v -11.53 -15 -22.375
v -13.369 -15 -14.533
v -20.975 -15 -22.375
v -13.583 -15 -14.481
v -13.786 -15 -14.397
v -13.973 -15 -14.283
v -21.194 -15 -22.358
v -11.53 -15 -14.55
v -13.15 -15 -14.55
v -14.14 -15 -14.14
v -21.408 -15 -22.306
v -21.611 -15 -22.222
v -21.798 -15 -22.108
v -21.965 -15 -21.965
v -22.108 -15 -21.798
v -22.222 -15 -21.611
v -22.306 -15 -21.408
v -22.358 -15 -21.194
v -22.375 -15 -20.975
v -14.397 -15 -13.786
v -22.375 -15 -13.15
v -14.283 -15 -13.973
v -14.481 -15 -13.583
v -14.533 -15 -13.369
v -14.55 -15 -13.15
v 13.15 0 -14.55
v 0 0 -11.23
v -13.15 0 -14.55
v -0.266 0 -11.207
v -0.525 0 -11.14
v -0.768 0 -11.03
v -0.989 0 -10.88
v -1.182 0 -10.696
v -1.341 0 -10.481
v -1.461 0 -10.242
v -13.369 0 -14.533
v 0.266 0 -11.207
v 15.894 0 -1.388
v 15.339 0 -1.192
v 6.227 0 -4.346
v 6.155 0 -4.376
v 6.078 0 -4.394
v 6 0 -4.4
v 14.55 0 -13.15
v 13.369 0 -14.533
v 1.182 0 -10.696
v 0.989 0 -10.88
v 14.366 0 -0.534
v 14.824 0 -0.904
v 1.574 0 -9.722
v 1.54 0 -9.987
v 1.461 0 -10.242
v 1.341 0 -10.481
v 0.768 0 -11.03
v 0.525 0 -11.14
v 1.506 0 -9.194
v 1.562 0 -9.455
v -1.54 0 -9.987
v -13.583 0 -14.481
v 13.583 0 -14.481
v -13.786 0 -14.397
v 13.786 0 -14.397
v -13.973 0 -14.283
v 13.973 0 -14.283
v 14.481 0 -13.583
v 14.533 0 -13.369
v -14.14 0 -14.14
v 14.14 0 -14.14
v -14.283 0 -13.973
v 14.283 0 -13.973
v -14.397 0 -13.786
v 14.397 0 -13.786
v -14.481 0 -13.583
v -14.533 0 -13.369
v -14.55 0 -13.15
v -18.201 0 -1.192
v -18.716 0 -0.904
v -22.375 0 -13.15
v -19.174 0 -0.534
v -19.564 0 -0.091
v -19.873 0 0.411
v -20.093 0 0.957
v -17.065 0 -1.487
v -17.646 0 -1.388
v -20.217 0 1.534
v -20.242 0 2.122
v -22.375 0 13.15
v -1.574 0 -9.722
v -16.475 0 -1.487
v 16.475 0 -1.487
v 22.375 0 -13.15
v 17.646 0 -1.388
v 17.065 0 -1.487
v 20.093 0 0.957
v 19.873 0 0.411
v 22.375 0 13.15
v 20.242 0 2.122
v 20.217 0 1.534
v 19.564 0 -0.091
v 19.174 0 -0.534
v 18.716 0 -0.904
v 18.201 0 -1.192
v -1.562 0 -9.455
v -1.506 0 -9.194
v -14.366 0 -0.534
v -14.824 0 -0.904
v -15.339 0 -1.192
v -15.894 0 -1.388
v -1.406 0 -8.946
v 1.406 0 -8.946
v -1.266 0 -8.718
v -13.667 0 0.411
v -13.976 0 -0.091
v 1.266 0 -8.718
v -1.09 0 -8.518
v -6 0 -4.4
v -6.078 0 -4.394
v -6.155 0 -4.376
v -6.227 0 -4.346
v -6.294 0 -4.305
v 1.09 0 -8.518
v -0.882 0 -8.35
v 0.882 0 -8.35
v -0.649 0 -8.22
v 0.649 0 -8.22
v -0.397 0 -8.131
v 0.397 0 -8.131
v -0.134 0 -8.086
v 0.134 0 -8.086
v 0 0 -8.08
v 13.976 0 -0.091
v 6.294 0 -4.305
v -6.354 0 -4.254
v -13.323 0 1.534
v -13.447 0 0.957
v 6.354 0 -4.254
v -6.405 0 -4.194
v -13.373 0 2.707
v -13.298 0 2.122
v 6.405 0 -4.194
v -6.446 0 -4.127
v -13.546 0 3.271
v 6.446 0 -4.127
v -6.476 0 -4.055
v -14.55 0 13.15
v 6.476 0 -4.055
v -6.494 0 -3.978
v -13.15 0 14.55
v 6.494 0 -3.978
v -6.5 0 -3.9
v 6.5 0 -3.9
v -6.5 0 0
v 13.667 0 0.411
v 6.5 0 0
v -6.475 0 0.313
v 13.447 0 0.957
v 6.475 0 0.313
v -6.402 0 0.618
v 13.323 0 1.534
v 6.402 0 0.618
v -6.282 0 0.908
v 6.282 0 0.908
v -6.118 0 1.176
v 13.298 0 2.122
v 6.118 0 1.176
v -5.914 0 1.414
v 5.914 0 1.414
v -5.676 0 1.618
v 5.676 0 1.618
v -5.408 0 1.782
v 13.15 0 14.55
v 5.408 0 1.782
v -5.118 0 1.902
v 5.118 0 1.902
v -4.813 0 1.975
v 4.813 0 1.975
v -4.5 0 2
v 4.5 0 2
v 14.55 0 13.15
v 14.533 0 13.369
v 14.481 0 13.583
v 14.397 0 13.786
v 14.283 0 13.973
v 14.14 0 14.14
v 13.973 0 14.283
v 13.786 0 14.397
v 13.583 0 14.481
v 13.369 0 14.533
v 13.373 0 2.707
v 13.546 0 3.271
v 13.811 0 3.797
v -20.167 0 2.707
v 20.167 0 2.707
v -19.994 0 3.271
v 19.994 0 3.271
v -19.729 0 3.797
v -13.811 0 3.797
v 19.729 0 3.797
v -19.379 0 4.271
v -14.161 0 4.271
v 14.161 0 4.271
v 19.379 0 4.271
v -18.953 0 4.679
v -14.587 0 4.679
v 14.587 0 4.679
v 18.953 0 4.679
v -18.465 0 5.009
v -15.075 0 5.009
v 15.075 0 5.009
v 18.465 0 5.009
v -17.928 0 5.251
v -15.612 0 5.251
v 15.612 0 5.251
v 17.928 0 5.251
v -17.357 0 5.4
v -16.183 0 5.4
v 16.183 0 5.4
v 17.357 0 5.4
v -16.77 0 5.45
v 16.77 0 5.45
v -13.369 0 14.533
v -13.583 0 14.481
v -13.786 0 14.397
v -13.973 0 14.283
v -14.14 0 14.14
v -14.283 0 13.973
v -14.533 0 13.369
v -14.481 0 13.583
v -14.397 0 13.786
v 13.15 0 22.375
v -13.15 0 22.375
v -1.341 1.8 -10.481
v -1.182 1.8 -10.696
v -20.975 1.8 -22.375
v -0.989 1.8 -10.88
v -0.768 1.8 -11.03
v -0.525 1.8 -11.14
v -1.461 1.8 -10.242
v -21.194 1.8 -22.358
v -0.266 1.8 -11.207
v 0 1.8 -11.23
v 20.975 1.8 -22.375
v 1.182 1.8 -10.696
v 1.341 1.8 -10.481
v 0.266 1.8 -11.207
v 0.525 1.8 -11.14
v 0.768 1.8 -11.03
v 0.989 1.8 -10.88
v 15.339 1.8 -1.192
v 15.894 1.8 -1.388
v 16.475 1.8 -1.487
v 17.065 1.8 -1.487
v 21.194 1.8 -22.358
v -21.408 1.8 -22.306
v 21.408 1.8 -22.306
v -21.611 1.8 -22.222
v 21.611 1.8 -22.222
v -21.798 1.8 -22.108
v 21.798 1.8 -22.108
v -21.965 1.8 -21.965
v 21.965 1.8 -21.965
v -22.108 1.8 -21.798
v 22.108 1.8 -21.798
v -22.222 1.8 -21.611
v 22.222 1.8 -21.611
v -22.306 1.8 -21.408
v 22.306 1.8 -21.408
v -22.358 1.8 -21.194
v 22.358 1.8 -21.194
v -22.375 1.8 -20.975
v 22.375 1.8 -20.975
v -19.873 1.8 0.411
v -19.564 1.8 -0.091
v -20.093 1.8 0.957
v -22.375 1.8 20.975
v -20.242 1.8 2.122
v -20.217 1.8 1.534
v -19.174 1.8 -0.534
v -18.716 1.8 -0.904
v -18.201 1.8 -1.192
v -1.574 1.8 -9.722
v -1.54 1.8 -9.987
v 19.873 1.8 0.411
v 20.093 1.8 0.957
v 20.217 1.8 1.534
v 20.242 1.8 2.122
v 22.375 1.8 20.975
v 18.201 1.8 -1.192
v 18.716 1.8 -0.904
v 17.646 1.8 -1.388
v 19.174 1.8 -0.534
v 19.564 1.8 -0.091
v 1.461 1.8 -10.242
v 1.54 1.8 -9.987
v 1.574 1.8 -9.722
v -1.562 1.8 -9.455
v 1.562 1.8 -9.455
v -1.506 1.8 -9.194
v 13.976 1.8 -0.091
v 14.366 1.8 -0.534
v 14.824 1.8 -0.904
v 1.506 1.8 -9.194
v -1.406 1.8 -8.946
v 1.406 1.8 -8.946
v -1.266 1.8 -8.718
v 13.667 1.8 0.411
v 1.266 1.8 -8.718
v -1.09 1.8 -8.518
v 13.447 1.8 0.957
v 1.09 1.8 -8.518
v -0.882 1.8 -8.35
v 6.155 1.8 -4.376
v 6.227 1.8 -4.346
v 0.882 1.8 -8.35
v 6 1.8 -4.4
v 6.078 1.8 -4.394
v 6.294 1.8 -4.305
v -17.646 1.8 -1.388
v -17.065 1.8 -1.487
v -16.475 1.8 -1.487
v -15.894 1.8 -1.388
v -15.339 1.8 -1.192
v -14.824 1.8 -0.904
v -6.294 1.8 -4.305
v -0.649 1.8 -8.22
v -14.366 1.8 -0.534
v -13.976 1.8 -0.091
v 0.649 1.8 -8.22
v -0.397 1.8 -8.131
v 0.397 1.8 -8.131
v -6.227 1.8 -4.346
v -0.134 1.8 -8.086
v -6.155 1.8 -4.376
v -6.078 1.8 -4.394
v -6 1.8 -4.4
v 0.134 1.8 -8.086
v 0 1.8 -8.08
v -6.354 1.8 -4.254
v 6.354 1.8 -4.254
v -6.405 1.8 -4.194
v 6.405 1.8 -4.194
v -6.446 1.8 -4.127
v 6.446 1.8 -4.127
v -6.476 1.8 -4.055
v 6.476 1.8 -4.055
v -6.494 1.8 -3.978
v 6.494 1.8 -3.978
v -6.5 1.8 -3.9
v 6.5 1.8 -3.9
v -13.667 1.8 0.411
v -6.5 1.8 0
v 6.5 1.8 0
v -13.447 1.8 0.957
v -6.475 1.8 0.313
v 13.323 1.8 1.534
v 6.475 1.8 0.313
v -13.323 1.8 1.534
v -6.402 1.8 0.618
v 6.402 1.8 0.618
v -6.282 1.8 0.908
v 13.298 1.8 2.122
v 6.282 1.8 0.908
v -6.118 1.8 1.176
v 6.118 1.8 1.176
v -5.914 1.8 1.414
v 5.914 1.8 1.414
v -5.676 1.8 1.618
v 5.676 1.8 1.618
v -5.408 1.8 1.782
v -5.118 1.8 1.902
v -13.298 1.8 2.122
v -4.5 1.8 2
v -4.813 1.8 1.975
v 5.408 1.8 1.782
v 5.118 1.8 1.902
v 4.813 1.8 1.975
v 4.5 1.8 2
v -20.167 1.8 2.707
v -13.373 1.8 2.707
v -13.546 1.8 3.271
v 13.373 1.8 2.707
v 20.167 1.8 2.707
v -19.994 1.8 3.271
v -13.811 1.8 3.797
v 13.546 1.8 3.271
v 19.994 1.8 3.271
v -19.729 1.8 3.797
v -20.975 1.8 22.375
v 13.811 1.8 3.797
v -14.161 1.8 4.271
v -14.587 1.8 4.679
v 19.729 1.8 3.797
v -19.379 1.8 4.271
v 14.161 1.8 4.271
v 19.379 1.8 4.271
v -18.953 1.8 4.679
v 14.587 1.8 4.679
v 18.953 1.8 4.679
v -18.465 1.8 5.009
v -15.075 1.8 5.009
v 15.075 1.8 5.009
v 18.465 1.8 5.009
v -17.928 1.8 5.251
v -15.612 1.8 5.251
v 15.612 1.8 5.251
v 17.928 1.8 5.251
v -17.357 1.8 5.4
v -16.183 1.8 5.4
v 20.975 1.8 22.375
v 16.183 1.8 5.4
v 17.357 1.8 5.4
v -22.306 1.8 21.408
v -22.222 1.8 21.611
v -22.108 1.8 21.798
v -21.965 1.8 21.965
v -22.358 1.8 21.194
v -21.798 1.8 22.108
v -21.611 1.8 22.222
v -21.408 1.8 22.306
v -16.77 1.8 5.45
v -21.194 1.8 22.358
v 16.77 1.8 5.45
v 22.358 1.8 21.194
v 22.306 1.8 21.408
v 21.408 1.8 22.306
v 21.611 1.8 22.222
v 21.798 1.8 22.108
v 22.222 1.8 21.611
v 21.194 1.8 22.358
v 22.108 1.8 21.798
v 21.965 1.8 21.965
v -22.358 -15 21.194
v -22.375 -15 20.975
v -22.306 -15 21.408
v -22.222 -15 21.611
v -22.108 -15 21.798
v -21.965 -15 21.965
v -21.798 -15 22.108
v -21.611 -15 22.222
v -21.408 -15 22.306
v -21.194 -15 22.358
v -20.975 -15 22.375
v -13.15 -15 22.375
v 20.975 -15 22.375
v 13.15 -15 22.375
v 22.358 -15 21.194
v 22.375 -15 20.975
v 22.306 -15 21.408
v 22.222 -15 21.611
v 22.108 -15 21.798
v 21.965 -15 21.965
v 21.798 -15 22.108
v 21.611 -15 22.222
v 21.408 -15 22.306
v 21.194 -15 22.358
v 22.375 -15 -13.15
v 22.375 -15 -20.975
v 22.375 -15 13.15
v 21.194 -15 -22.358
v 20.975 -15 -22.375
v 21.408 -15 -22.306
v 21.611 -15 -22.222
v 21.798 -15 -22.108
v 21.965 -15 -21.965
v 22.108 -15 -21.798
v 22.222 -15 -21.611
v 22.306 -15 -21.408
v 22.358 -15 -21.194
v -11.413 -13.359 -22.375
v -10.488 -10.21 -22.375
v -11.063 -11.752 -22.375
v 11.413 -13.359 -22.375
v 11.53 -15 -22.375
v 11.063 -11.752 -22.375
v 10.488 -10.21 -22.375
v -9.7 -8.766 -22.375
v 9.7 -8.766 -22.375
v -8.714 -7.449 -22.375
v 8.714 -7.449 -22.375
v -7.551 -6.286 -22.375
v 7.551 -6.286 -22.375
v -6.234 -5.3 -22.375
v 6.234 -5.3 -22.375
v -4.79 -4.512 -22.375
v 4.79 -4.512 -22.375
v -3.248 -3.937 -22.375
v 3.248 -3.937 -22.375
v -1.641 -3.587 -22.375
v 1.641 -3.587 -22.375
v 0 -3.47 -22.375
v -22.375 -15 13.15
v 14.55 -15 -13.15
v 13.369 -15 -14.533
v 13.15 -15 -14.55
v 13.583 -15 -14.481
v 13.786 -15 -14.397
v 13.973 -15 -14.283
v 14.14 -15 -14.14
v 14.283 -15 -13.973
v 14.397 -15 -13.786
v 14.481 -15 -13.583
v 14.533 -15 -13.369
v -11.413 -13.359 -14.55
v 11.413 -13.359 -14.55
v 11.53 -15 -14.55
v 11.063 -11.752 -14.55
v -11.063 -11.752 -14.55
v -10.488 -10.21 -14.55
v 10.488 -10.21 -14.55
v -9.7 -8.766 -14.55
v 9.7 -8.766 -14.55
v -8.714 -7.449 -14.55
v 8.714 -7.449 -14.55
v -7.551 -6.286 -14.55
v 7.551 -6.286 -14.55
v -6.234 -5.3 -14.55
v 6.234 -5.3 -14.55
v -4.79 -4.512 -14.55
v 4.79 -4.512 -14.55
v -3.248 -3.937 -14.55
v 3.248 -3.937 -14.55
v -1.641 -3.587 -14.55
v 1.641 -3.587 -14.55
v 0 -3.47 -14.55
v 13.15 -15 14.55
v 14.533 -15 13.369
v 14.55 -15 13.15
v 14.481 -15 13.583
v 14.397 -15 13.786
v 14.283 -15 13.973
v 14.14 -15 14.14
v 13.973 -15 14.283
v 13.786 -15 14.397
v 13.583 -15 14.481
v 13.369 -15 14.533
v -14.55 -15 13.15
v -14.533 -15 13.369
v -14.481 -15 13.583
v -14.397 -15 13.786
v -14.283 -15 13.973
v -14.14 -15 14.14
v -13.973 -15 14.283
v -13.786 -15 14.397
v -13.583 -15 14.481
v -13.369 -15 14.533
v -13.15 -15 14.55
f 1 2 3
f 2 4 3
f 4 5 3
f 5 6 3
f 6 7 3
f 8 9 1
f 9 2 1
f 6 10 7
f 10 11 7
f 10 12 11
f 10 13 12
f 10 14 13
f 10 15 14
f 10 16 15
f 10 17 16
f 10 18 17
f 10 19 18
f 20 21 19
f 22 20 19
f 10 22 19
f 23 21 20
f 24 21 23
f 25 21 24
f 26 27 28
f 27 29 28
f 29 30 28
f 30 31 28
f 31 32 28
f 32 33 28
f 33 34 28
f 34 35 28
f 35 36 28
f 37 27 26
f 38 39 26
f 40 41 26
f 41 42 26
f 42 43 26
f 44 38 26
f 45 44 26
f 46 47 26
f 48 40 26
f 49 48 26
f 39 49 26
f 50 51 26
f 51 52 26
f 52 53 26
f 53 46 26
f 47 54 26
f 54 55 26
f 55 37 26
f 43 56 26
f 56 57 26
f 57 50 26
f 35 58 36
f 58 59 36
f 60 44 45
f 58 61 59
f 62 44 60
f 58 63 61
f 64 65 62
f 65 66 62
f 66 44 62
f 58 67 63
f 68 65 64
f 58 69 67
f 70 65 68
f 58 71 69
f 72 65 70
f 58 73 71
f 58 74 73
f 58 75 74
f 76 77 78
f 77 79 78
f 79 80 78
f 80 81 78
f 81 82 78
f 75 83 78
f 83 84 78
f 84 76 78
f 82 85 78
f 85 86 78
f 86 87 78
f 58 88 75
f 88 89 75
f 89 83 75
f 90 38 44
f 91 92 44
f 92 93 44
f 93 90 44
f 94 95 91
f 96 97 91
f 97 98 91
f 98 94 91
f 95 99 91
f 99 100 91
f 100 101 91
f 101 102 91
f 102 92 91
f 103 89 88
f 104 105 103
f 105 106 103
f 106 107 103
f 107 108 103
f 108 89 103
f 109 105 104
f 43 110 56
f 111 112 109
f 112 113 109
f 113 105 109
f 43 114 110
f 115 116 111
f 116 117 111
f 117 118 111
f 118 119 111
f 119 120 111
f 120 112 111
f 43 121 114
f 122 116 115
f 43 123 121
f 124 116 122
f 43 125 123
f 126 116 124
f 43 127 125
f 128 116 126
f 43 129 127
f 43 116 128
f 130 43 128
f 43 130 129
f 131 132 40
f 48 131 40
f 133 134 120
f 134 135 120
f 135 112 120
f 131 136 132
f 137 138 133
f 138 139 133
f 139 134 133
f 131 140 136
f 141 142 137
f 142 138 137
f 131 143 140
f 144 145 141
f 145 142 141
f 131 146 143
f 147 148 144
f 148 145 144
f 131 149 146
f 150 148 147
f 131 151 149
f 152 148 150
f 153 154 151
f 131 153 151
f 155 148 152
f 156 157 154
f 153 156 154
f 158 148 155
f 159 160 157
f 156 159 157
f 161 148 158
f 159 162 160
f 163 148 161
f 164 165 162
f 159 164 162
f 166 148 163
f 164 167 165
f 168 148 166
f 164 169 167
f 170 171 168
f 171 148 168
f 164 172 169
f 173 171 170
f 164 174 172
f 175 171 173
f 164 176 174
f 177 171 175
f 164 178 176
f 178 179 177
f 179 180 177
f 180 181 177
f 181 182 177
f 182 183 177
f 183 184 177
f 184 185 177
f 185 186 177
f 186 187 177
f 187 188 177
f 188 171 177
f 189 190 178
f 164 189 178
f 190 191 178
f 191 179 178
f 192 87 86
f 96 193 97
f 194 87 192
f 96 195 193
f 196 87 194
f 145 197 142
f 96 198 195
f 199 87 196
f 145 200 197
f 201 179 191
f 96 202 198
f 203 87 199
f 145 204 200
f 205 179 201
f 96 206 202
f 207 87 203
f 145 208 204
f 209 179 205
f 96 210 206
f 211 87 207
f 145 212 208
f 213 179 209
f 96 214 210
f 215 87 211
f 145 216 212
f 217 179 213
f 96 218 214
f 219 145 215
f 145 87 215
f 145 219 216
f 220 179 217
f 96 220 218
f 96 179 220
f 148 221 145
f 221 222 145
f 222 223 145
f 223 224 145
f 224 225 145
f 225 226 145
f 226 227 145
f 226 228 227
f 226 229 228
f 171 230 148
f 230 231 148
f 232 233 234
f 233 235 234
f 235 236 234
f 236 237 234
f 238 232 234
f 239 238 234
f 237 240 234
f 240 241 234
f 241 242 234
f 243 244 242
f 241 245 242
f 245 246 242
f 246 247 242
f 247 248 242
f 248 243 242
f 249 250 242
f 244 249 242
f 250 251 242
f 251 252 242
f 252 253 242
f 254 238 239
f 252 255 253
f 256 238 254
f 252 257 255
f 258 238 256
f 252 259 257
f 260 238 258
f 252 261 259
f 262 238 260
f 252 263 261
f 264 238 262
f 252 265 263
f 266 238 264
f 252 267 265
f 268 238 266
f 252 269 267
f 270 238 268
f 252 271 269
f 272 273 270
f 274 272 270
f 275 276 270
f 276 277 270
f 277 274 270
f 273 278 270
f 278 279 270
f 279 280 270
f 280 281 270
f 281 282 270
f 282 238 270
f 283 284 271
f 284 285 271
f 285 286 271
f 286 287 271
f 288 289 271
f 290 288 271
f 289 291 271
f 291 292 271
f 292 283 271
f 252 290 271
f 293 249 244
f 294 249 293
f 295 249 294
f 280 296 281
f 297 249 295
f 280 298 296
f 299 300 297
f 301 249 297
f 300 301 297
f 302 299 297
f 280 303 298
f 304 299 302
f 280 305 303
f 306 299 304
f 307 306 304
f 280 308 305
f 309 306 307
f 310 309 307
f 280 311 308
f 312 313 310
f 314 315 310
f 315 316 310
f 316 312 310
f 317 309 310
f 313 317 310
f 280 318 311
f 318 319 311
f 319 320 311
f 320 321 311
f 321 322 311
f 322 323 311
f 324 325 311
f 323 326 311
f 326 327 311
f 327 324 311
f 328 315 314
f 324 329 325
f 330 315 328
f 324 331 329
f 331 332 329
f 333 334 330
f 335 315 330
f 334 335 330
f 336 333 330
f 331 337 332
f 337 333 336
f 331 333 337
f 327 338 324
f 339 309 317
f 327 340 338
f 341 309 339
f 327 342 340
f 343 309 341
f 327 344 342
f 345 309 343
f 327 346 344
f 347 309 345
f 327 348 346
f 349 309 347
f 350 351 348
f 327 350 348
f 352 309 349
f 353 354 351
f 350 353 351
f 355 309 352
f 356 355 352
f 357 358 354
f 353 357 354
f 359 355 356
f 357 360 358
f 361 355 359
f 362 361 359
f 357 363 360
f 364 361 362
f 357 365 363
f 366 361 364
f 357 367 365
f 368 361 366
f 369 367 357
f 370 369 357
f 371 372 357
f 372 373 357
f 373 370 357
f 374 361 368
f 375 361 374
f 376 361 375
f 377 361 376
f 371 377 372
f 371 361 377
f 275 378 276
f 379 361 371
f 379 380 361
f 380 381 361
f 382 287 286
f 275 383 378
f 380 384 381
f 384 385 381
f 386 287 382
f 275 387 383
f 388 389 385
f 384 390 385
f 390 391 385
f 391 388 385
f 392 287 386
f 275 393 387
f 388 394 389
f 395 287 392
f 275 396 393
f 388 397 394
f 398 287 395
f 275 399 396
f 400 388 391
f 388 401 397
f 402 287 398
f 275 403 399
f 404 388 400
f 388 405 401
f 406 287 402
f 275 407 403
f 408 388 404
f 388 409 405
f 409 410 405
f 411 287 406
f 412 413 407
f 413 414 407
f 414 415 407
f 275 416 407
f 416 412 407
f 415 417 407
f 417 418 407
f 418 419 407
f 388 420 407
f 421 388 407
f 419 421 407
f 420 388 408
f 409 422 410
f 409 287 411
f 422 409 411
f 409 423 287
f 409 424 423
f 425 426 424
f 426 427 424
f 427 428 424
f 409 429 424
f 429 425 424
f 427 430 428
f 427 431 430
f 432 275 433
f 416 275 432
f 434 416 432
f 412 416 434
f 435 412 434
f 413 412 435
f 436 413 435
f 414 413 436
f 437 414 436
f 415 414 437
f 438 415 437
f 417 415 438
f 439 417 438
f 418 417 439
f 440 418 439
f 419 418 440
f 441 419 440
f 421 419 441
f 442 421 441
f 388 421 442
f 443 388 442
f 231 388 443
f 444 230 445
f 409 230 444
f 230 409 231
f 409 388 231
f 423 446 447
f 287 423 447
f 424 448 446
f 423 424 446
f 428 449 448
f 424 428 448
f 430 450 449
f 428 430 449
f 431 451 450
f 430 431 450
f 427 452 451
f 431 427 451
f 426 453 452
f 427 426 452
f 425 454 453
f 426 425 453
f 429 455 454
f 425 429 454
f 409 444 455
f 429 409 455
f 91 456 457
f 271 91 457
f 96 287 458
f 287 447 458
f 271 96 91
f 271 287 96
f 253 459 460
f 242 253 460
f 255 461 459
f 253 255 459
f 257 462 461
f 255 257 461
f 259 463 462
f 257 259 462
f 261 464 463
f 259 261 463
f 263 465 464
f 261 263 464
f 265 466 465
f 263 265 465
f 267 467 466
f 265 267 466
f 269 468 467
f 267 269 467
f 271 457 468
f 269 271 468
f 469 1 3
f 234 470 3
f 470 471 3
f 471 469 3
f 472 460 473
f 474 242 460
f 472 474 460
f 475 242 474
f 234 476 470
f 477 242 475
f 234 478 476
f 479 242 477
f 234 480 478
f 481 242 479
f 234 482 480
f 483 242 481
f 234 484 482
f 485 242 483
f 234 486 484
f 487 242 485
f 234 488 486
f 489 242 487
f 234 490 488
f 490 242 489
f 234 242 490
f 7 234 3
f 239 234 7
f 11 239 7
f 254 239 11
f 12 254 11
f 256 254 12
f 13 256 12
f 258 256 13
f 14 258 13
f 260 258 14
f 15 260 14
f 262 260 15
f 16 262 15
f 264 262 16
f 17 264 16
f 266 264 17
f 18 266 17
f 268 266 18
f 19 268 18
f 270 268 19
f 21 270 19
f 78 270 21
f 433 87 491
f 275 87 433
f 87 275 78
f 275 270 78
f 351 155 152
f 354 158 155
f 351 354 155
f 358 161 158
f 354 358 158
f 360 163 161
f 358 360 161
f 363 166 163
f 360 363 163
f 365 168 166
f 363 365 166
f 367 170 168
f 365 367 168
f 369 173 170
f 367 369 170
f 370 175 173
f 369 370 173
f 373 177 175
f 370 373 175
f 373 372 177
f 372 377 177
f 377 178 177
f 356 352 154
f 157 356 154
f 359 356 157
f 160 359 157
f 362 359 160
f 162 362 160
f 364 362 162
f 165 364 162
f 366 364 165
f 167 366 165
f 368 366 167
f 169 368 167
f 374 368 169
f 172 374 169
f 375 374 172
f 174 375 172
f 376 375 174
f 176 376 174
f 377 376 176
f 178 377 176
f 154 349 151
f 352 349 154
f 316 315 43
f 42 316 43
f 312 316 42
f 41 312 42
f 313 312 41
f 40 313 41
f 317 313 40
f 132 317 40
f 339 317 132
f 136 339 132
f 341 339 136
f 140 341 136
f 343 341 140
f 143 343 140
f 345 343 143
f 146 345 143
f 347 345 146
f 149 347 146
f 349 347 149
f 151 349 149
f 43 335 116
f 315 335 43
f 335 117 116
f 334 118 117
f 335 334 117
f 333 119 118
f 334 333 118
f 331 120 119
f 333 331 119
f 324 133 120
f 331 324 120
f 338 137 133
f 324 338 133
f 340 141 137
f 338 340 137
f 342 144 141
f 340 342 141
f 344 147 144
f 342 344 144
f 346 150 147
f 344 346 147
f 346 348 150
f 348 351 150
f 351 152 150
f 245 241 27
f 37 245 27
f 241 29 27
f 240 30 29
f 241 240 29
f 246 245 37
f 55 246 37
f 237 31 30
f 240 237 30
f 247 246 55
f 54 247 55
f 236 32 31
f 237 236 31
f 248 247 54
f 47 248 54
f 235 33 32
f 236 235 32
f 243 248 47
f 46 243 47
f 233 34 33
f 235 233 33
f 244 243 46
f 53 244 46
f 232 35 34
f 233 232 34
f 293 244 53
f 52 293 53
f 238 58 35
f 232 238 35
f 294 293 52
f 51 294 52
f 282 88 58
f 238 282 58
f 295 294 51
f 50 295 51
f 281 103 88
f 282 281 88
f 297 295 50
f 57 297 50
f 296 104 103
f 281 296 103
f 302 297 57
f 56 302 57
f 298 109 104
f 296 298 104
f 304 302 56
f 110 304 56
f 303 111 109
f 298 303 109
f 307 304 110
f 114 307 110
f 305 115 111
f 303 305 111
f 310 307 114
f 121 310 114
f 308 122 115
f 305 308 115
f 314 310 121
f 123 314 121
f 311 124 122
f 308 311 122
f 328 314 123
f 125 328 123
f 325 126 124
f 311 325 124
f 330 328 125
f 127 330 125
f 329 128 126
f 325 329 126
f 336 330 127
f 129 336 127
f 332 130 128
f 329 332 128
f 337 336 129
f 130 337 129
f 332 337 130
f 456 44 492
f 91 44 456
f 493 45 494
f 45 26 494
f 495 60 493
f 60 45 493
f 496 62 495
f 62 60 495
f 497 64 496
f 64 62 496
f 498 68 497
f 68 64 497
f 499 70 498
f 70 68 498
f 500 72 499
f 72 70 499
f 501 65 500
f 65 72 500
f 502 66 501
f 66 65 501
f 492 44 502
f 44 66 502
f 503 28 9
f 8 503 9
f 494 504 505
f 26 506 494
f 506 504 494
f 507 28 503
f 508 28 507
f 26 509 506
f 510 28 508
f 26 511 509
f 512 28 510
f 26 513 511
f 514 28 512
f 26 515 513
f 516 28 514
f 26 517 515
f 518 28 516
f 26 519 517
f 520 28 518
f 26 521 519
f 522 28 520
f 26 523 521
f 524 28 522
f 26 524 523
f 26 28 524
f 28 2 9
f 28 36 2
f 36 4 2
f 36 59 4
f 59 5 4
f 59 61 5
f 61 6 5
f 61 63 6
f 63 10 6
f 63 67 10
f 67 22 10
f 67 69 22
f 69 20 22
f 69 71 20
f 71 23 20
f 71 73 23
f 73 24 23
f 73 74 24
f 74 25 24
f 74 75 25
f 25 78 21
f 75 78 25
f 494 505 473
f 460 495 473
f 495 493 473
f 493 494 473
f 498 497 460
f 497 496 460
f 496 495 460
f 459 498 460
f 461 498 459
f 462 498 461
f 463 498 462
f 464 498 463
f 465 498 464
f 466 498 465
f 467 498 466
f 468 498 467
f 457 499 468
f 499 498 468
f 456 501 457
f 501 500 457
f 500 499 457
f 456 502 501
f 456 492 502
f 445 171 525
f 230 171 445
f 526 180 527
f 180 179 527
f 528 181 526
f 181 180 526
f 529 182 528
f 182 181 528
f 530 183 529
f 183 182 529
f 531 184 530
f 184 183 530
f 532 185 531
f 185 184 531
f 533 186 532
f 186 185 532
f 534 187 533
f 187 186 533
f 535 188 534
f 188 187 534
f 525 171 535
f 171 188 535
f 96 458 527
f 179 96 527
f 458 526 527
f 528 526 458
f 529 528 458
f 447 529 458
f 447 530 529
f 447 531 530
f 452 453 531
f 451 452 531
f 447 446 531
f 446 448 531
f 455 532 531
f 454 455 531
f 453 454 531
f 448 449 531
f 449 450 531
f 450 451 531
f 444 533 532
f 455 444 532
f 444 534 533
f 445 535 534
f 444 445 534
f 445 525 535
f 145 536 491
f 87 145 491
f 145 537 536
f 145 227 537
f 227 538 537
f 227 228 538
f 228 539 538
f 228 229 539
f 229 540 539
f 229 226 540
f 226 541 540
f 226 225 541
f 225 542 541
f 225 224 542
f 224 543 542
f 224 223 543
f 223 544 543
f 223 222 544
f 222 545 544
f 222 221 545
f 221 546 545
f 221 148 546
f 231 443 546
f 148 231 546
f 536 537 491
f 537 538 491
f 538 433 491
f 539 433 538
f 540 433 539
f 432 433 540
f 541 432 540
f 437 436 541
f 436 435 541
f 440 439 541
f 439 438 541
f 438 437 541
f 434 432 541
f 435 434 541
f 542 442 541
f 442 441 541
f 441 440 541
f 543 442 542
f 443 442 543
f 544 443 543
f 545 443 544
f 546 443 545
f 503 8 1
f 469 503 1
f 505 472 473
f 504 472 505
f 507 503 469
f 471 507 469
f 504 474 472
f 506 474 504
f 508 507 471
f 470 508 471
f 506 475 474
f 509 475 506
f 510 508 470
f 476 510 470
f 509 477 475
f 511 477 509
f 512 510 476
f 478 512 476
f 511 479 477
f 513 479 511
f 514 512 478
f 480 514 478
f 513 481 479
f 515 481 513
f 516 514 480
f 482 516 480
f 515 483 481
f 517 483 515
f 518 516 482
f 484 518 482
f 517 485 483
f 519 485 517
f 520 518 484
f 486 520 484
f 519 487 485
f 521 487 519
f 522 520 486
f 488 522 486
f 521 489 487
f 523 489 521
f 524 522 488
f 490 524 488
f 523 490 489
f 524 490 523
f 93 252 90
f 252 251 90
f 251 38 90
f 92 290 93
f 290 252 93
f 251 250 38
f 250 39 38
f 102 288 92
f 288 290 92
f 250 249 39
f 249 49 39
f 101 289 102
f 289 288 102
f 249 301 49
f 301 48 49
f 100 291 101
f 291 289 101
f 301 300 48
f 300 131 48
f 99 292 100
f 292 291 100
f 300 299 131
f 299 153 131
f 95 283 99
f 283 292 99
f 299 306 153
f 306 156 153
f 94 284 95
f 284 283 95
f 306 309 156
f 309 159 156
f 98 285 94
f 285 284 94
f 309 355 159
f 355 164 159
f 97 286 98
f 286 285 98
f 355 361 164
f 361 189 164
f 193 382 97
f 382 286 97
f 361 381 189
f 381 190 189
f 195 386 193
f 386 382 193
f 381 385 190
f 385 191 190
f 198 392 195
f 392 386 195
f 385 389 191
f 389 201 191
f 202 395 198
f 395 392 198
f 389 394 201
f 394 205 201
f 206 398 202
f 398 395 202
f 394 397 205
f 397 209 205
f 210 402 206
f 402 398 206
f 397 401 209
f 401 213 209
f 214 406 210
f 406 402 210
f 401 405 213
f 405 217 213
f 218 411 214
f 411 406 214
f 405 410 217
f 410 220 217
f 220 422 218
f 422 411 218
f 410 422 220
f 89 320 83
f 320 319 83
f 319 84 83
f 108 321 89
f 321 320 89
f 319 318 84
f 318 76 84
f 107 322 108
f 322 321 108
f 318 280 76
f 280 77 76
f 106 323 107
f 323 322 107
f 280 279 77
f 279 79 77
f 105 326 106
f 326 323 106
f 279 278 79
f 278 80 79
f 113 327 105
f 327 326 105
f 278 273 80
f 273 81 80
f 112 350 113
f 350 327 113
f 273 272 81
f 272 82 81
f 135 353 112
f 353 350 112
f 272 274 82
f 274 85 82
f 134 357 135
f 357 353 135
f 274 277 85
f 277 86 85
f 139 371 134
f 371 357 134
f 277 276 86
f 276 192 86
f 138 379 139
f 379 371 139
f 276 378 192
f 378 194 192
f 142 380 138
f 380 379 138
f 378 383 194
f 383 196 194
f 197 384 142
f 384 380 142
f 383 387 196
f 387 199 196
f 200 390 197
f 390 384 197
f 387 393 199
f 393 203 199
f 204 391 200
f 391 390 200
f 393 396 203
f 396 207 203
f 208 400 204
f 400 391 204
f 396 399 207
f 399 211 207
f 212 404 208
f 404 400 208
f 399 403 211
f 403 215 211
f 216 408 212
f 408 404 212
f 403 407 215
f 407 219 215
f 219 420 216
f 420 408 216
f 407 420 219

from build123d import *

# Parameters (mm, degrees)
SKETCH2_R           = 1.575
BOSS_EXTRUDE3_DEPTH = 1.8
BOSS_EXTRUDE4_START = 15
BOSS_EXTRUDE4_DEPTH = 15
CUT_EXTRUDE1_REACH  = 54.232
SKETCH4_R           = 11.530245675
SKETCH5_R           = 3.475
CUT_EXTRUDE2_DEPTH  = 36.826264807


with BuildPart() as part:
    # Sketch2 → Boss-Extrude3 (new body)
    with BuildSketch(Plane(origin=(0, 0, 0), x_dir=(1, 0, 0), z_dir=(0, 1, 0))):
        with BuildLine():
            Line((-20.975, -22.375), (20.975, -22.375))
            ThreePointArc((20.975, -22.375), (21.964949494, -21.964949494), (22.375, -20.975))
            Line((22.375, -20.975), (22.375, 20.975))
            ThreePointArc((22.375, 20.975), (21.964949494, 21.964949494), (20.975, 22.375))
            Line((20.975, 22.375), (-20.975, 22.375))
            ThreePointArc((-20.975, 22.375), (-21.964949494, 21.964949494), (-22.375, 20.975))
            Line((-22.375, 20.975), (-22.375, -20.975))
            ThreePointArc((-22.375, -20.975), (-21.964949494, -21.964949494), (-20.975, -22.375))
        make_face()
        with Locations(Location((0, 9.655, 0), (0, 0, 270))):
            Circle(SKETCH2_R, mode=Mode.SUBTRACT)
        with BuildLine():
            Line((-4.5, -2), (4.5, -2))
            ThreePointArc((4.5, -2), (5.914213562, -1.414213562), (6.5, 0))
            Line((6.5, 0), (6.5, 3.9))
            ThreePointArc((6.5, 3.9), (6.353553391, 4.253553391), (6, 4.4))
            Line((6, 4.4), (-6, 4.4))
            ThreePointArc((-6, 4.4), (-6.353553391, 4.253553391), (-6.5, 3.9))
            Line((-6.5, 3.9), (-6.5, 0))
            ThreePointArc((-6.5, 0), (-5.914213562, -1.414213562), (-4.5, -2))
        make_face(mode=Mode.SUBTRACT)
    extrude(amount=BOSS_EXTRUDE3_DEPTH)

    # Sketch3 → Boss-Extrude4 (add)
    with BuildSketch(Plane.XZ.offset(BOSS_EXTRUDE4_START)):
        with BuildLine():
            Line((-20.975, -22.375), (20.975, -22.375))
            ThreePointArc((20.975, -22.375), (21.964949494, -21.964949494), (22.375, -20.975))
            Line((22.375, -20.975), (22.375, -13.15))
            Line((22.375, -13.15), (14.55, -13.15))
            ThreePointArc((14.55, -13.15), (14.139949494, -14.139949494), (13.15, -14.55))
            Line((13.15, -14.55), (-13.15, -14.55))
            ThreePointArc((-13.15, -14.55), (-14.139949494, -14.139949494), (-14.55, -13.15))
            Line((-14.55, -13.15), (-22.375, -13.15))
            Line((-22.375, -13.15), (-22.375, -20.975))
            ThreePointArc((-22.375, -20.975), (-21.964949494, -21.964949494), (-20.975, -22.375))
        make_face()
        with BuildLine():
            Line((-20.975, 22.375), (-13.15, 22.375))
            Line((-13.15, 22.375), (-13.15, 14.55))
            ThreePointArc((-13.15, 14.55), (-14.139949494, 14.139949494), (-14.55, 13.15))
            Line((-14.55, 13.15), (-22.375, 13.15))
            Line((-22.375, 13.15), (-22.375, 20.975))
            ThreePointArc((-22.375, 20.975), (-21.964949494, 21.964949494), (-20.975, 22.375))
        make_face()
        with BuildLine():
            Line((14.55, 13.15), (22.375, 13.15))
            Line((22.375, 13.15), (22.375, 20.975))
            ThreePointArc((22.375, 20.975), (21.964949494, 21.964949494), (20.975, 22.375))
            Line((20.975, 22.375), (13.15, 22.375))
            Line((13.15, 22.375), (13.15, 14.55))
            ThreePointArc((13.15, 14.55), (14.139949494, 14.139949494), (14.55, 13.15))
        make_face()
    extrude(amount=-BOSS_EXTRUDE4_DEPTH)

    # Sketch4 → Cut-Extrude1 (cut, up to next)
    with BuildSketch(Plane(origin=(0, 0, -22.375), x_dir=(-1, 0, 0), z_dir=(0, 0, -1)), mode=Mode.PRIVATE) as cut_extrude1_sk1:
        with Locations((0, -15)):
            Circle(SKETCH4_R)
    cut_extrude1_tool1 = extrude(cut_extrude1_sk1.sketch, amount=-CUT_EXTRUDE1_REACH, mode=Mode.PRIVATE) & part.part
    add(cut_extrude1_tool1.solids().sort_by_distance((0, -15, -22.375))[0], mode=Mode.SUBTRACT)

    # Sketch5 → Cut-Extrude2 (cut, through all)
    with BuildSketch(Plane(origin=(0, 1.8, 0), x_dir=(1, 0, 0), z_dir=(0, 1, 0))):
        with Locations(Location((-16.77, -1.975, 0), (0, 0, 270))):
            Circle(SKETCH5_R)
        with Locations(Location((16.77, -1.975, 0), (0, 0, 270))):
            Circle(SKETCH5_R)
    extrude(amount=-CUT_EXTRUDE2_DEPTH, mode=Mode.SUBTRACT)


solid = part.part
